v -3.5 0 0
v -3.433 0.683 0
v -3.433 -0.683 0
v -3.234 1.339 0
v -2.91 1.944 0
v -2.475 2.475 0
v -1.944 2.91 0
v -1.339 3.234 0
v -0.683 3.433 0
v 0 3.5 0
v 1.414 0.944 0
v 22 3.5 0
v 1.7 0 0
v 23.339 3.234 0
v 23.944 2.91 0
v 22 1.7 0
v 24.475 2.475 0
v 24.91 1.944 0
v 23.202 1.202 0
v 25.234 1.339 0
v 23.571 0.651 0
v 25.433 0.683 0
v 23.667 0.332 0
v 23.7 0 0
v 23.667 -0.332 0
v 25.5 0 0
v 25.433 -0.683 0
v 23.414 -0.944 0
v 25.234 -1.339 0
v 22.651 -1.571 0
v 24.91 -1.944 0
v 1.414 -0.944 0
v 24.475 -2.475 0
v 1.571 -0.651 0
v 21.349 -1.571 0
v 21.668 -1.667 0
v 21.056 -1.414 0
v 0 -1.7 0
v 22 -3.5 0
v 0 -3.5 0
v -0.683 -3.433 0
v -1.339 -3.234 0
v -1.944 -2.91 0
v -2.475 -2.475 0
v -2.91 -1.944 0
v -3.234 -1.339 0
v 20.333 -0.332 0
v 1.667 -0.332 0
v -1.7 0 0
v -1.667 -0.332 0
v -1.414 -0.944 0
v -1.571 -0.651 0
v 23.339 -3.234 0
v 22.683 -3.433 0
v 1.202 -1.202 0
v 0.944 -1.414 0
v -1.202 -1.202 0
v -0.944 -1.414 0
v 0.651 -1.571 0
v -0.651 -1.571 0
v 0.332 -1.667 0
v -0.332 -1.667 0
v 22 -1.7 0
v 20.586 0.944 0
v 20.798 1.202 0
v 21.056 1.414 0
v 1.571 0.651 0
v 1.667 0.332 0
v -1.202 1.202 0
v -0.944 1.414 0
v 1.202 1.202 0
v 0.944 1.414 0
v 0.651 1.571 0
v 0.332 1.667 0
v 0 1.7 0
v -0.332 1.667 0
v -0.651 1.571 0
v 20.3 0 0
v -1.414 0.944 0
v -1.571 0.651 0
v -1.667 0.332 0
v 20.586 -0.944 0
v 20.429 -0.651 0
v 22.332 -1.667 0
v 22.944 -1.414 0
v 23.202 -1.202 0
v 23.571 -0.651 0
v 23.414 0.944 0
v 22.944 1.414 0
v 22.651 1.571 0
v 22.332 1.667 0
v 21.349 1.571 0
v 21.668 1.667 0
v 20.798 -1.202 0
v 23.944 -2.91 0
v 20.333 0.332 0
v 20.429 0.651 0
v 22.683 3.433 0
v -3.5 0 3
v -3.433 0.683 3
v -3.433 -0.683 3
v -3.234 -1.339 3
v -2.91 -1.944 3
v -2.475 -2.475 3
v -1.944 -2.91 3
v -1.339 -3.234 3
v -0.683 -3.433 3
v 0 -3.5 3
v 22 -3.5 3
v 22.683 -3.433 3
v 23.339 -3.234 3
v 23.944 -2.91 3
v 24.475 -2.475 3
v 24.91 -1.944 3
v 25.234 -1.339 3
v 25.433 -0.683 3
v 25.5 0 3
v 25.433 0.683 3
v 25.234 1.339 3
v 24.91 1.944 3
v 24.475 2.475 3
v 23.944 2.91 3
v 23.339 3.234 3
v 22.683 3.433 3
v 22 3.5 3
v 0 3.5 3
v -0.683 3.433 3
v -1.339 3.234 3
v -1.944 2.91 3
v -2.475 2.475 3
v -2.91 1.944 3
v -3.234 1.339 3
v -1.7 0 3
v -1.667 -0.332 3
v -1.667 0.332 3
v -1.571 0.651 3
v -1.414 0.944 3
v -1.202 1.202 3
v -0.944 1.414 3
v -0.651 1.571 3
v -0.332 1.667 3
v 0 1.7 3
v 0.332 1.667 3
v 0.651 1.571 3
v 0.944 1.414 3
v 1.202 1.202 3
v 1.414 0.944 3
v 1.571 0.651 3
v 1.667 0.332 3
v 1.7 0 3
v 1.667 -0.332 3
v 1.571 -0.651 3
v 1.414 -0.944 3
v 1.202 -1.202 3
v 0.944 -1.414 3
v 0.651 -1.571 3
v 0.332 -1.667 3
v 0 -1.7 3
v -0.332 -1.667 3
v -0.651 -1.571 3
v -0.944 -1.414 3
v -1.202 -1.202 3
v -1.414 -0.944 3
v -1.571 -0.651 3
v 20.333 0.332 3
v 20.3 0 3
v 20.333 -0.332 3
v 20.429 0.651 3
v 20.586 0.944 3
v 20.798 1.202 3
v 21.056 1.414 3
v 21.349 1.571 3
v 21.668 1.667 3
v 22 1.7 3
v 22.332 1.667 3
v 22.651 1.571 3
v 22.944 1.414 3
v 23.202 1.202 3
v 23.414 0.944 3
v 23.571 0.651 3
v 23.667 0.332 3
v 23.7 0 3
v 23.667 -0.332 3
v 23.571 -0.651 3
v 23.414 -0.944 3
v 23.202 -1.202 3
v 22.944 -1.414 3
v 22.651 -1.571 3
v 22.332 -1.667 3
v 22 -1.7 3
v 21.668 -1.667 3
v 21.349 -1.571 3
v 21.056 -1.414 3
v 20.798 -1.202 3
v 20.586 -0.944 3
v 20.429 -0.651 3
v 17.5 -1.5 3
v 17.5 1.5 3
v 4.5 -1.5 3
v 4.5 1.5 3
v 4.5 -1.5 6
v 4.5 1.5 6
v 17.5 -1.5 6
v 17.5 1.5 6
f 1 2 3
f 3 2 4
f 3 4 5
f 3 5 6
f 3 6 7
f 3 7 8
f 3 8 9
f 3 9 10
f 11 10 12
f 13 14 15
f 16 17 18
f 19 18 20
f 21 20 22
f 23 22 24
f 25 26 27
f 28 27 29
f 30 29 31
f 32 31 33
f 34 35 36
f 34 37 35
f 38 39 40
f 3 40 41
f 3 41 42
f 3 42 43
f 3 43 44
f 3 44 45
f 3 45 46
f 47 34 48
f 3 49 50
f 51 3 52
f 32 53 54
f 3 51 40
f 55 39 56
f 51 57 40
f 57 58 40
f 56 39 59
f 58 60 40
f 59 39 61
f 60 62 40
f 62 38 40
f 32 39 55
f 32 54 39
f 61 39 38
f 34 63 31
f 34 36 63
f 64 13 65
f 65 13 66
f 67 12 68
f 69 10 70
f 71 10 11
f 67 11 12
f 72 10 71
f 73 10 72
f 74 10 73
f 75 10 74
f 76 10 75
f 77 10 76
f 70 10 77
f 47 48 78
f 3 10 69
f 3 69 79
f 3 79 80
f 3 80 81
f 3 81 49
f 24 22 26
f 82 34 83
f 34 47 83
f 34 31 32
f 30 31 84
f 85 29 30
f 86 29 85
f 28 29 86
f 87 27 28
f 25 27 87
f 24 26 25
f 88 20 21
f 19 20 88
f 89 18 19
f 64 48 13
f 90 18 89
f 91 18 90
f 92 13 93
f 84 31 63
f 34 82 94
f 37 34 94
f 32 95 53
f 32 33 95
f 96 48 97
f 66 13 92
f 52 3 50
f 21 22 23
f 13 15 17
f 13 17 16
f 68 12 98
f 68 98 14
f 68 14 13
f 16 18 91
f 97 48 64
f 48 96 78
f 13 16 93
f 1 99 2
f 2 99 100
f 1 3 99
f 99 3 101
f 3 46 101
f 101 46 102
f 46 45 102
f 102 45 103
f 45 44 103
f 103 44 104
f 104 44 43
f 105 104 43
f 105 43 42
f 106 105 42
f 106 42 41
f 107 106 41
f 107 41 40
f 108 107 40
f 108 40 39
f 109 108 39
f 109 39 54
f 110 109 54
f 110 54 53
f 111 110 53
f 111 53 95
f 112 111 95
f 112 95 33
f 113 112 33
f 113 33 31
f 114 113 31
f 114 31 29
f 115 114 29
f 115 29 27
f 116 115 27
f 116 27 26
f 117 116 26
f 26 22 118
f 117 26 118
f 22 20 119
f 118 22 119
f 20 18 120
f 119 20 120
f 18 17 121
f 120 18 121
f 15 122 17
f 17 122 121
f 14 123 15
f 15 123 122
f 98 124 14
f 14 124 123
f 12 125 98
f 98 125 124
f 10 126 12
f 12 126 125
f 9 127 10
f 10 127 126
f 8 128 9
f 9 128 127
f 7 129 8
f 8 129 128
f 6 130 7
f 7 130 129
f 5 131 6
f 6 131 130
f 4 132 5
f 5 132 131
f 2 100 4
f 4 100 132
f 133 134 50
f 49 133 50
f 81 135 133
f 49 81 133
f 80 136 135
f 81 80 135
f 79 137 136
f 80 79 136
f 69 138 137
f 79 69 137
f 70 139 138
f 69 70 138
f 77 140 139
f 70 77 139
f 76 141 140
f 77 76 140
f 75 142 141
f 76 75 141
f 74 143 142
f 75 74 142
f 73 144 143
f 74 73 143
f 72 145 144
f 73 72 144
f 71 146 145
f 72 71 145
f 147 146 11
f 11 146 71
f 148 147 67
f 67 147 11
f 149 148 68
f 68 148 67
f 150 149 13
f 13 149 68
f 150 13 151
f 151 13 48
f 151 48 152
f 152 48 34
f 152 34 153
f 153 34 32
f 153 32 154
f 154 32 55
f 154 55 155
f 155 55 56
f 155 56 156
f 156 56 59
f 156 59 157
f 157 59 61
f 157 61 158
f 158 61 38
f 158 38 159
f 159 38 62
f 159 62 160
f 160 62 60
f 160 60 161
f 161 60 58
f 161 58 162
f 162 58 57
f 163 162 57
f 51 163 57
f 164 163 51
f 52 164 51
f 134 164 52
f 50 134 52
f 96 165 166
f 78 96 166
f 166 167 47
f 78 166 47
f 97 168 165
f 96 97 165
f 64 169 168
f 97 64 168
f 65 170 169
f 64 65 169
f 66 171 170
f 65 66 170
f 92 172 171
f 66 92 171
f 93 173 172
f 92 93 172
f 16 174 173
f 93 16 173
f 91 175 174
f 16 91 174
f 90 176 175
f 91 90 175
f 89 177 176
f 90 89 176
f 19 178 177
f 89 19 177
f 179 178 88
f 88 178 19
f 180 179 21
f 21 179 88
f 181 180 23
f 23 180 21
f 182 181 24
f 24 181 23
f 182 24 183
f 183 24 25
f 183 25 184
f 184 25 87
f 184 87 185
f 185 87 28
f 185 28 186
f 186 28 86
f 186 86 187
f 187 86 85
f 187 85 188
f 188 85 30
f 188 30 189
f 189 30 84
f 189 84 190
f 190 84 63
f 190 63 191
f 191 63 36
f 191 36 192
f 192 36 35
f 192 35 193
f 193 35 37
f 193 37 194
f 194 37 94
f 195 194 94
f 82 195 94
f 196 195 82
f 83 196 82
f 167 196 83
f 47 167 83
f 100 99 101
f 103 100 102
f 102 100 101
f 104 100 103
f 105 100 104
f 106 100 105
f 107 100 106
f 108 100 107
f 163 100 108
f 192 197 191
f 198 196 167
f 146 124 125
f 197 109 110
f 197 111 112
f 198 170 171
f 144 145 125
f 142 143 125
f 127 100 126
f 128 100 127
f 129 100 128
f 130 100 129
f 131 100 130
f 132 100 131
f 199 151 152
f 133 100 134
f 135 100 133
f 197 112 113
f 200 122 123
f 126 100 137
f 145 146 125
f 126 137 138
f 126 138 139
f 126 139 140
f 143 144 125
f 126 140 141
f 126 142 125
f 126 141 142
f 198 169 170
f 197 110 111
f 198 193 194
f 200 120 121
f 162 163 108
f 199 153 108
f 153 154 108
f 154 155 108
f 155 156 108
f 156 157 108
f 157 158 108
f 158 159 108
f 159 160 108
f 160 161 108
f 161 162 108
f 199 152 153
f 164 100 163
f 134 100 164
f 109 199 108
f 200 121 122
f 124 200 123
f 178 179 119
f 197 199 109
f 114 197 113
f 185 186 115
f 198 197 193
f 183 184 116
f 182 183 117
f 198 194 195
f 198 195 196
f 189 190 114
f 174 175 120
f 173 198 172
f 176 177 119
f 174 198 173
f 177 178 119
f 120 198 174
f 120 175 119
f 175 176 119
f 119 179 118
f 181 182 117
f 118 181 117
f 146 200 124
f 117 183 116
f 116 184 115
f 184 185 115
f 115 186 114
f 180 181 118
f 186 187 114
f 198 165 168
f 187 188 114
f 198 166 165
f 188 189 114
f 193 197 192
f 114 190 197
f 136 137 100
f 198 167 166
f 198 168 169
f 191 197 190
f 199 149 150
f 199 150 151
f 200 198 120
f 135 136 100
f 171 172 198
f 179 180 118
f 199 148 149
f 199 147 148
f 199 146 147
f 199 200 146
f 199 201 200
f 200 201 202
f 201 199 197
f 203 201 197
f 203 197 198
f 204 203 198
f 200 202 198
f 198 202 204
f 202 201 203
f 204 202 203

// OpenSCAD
//-- arm1plus2mm.scad by AndrewBCN - November 2014
//-- remix of thing #154834
//-- replaces Brazo.stl with slightly stronger part
//-- and with source file.
//-- GPL V3

arm_th=3;
arm_len=20+2;
arm_wi=7;
$fn=32;

//-- above are exactly same dimensions as original
//-- plus 2mm length

difference() {
  // arm
  union() {
    translate([arm_len/2,0,arm_th/2]) cube([arm_len,arm_wi,arm_th], center=true);
    translate([arm_len/2,0,1.5*arm_th]) cube([arm_len-9,arm_th,arm_th], center=true);
    translate([0,0,arm_th/2]) cylinder(r=arm_wi/2, h=arm_th, center=true);
    translate([arm_len,0,arm_th/2]) cylinder(r=arm_wi/2, h=arm_th, center=true);
  }
  // holes
  cylinder(r=3.4/2, h=3*arm_th, center=true);
  translate([arm_len,0,0]) cylinder(r=3.4/2, h=3*arm_th, center=true);
}
